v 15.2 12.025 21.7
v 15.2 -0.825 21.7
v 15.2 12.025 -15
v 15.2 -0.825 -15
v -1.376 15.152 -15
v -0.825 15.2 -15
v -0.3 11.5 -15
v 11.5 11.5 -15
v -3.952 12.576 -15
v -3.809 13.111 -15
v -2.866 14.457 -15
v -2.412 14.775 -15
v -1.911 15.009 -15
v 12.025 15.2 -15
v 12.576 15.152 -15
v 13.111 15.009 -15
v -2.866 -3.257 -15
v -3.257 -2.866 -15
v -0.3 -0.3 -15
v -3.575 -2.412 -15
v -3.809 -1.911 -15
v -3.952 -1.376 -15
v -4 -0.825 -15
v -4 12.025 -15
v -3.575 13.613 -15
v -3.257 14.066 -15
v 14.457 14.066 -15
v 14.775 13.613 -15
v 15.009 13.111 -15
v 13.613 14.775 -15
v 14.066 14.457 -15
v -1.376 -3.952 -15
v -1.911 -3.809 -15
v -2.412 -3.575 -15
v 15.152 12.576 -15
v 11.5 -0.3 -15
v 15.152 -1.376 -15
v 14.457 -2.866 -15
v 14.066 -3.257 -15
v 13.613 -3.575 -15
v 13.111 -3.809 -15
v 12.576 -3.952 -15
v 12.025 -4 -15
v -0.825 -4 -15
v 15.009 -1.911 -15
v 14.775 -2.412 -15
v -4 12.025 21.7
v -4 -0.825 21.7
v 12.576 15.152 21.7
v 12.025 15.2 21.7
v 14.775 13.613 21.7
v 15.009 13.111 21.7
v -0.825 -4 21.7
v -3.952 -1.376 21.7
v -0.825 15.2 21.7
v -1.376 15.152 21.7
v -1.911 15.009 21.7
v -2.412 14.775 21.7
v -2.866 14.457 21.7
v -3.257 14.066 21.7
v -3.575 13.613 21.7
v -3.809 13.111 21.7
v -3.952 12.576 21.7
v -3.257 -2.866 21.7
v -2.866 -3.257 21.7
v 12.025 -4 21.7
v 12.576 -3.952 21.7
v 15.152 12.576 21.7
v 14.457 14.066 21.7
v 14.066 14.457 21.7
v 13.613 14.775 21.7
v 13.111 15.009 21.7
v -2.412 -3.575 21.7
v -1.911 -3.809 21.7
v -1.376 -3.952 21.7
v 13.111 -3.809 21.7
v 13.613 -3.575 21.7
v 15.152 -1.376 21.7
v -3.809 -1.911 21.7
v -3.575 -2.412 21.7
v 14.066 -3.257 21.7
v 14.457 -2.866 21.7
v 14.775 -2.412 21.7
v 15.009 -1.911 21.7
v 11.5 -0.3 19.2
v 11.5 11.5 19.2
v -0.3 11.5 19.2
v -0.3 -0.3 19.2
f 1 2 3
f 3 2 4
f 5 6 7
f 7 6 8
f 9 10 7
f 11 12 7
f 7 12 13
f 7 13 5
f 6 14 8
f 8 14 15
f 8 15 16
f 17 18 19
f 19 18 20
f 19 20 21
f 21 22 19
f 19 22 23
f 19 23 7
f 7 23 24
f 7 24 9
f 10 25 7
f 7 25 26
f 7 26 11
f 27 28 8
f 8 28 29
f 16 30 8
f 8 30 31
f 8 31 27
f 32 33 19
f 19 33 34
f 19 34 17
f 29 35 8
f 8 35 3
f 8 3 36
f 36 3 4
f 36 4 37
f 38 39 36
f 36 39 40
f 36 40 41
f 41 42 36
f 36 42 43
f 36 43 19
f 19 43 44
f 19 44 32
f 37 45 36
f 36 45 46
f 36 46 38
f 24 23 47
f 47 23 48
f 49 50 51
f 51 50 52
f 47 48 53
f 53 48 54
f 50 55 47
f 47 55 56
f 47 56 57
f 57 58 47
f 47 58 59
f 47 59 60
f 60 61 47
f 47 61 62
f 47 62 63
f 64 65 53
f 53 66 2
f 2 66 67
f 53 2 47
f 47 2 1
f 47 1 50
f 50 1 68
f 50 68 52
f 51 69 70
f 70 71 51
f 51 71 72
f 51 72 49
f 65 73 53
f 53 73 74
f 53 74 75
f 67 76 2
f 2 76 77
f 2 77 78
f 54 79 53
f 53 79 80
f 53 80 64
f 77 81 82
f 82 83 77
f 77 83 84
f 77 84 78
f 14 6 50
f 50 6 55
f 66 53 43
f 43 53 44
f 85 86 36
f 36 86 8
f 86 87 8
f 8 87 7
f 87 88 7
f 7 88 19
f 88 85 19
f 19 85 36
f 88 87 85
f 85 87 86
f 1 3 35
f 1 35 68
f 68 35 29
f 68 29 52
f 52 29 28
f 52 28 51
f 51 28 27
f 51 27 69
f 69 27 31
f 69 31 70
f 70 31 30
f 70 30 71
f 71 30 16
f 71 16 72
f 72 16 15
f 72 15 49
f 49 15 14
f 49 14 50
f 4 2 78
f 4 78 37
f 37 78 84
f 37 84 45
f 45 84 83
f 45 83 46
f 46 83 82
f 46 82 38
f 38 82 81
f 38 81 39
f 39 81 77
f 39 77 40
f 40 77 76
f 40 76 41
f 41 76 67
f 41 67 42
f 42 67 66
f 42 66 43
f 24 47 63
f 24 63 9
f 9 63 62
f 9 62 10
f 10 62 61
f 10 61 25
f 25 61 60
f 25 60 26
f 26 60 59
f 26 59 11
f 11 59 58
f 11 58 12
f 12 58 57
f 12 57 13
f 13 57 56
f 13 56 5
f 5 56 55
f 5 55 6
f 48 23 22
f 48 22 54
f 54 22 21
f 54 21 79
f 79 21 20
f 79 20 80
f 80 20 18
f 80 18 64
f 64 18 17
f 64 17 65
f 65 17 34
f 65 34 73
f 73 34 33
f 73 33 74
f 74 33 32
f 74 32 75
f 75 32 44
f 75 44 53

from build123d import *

# Parameters (mm, degrees)
SKETCH1_W           = 19.2
SKETCH1_H           = 36.7
BOSS_EXTRUDE1_DEPTH = 19.2
SKETCH2_W           = 11.8
SKETCH2_H           = 11.8
CUT_EXTRUDE1_DEPTH  = 34.2
FILLET1_R           = 3.175


with BuildPart() as part:
    # Sketch1 → Boss-Extrude1 (new body)
    with BuildSketch(Plane.XZ.offset(4)):
        with Locations((5.6, 3.35)):
            Rectangle(SKETCH1_W, SKETCH1_H)
    extrude(amount=-BOSS_EXTRUDE1_DEPTH)

    # Sketch2 → Cut-Extrude1 (cut)
    with BuildSketch(Plane(origin=(0, 0, -15), x_dir=(-1, 0, 0), z_dir=(0, 0, -1))):
        with Locations((-5.6, 5.6)):
            Rectangle(SKETCH2_W, SKETCH2_H)
    extrude(amount=-CUT_EXTRUDE1_DEPTH, mode=Mode.SUBTRACT)

    # Fillet1
    fillet1_edges = [part.edges().sort_by_distance(p)[0] for p in [
        (-4, 15.2, 3.35),
        (15.2, 15.2, 3.35),
        (-4, -4, 3.35),
        (15.2, -4, 3.35),
    ]]
    fillet(fillet1_edges, radius=FILLET1_R)


solid = part.part
